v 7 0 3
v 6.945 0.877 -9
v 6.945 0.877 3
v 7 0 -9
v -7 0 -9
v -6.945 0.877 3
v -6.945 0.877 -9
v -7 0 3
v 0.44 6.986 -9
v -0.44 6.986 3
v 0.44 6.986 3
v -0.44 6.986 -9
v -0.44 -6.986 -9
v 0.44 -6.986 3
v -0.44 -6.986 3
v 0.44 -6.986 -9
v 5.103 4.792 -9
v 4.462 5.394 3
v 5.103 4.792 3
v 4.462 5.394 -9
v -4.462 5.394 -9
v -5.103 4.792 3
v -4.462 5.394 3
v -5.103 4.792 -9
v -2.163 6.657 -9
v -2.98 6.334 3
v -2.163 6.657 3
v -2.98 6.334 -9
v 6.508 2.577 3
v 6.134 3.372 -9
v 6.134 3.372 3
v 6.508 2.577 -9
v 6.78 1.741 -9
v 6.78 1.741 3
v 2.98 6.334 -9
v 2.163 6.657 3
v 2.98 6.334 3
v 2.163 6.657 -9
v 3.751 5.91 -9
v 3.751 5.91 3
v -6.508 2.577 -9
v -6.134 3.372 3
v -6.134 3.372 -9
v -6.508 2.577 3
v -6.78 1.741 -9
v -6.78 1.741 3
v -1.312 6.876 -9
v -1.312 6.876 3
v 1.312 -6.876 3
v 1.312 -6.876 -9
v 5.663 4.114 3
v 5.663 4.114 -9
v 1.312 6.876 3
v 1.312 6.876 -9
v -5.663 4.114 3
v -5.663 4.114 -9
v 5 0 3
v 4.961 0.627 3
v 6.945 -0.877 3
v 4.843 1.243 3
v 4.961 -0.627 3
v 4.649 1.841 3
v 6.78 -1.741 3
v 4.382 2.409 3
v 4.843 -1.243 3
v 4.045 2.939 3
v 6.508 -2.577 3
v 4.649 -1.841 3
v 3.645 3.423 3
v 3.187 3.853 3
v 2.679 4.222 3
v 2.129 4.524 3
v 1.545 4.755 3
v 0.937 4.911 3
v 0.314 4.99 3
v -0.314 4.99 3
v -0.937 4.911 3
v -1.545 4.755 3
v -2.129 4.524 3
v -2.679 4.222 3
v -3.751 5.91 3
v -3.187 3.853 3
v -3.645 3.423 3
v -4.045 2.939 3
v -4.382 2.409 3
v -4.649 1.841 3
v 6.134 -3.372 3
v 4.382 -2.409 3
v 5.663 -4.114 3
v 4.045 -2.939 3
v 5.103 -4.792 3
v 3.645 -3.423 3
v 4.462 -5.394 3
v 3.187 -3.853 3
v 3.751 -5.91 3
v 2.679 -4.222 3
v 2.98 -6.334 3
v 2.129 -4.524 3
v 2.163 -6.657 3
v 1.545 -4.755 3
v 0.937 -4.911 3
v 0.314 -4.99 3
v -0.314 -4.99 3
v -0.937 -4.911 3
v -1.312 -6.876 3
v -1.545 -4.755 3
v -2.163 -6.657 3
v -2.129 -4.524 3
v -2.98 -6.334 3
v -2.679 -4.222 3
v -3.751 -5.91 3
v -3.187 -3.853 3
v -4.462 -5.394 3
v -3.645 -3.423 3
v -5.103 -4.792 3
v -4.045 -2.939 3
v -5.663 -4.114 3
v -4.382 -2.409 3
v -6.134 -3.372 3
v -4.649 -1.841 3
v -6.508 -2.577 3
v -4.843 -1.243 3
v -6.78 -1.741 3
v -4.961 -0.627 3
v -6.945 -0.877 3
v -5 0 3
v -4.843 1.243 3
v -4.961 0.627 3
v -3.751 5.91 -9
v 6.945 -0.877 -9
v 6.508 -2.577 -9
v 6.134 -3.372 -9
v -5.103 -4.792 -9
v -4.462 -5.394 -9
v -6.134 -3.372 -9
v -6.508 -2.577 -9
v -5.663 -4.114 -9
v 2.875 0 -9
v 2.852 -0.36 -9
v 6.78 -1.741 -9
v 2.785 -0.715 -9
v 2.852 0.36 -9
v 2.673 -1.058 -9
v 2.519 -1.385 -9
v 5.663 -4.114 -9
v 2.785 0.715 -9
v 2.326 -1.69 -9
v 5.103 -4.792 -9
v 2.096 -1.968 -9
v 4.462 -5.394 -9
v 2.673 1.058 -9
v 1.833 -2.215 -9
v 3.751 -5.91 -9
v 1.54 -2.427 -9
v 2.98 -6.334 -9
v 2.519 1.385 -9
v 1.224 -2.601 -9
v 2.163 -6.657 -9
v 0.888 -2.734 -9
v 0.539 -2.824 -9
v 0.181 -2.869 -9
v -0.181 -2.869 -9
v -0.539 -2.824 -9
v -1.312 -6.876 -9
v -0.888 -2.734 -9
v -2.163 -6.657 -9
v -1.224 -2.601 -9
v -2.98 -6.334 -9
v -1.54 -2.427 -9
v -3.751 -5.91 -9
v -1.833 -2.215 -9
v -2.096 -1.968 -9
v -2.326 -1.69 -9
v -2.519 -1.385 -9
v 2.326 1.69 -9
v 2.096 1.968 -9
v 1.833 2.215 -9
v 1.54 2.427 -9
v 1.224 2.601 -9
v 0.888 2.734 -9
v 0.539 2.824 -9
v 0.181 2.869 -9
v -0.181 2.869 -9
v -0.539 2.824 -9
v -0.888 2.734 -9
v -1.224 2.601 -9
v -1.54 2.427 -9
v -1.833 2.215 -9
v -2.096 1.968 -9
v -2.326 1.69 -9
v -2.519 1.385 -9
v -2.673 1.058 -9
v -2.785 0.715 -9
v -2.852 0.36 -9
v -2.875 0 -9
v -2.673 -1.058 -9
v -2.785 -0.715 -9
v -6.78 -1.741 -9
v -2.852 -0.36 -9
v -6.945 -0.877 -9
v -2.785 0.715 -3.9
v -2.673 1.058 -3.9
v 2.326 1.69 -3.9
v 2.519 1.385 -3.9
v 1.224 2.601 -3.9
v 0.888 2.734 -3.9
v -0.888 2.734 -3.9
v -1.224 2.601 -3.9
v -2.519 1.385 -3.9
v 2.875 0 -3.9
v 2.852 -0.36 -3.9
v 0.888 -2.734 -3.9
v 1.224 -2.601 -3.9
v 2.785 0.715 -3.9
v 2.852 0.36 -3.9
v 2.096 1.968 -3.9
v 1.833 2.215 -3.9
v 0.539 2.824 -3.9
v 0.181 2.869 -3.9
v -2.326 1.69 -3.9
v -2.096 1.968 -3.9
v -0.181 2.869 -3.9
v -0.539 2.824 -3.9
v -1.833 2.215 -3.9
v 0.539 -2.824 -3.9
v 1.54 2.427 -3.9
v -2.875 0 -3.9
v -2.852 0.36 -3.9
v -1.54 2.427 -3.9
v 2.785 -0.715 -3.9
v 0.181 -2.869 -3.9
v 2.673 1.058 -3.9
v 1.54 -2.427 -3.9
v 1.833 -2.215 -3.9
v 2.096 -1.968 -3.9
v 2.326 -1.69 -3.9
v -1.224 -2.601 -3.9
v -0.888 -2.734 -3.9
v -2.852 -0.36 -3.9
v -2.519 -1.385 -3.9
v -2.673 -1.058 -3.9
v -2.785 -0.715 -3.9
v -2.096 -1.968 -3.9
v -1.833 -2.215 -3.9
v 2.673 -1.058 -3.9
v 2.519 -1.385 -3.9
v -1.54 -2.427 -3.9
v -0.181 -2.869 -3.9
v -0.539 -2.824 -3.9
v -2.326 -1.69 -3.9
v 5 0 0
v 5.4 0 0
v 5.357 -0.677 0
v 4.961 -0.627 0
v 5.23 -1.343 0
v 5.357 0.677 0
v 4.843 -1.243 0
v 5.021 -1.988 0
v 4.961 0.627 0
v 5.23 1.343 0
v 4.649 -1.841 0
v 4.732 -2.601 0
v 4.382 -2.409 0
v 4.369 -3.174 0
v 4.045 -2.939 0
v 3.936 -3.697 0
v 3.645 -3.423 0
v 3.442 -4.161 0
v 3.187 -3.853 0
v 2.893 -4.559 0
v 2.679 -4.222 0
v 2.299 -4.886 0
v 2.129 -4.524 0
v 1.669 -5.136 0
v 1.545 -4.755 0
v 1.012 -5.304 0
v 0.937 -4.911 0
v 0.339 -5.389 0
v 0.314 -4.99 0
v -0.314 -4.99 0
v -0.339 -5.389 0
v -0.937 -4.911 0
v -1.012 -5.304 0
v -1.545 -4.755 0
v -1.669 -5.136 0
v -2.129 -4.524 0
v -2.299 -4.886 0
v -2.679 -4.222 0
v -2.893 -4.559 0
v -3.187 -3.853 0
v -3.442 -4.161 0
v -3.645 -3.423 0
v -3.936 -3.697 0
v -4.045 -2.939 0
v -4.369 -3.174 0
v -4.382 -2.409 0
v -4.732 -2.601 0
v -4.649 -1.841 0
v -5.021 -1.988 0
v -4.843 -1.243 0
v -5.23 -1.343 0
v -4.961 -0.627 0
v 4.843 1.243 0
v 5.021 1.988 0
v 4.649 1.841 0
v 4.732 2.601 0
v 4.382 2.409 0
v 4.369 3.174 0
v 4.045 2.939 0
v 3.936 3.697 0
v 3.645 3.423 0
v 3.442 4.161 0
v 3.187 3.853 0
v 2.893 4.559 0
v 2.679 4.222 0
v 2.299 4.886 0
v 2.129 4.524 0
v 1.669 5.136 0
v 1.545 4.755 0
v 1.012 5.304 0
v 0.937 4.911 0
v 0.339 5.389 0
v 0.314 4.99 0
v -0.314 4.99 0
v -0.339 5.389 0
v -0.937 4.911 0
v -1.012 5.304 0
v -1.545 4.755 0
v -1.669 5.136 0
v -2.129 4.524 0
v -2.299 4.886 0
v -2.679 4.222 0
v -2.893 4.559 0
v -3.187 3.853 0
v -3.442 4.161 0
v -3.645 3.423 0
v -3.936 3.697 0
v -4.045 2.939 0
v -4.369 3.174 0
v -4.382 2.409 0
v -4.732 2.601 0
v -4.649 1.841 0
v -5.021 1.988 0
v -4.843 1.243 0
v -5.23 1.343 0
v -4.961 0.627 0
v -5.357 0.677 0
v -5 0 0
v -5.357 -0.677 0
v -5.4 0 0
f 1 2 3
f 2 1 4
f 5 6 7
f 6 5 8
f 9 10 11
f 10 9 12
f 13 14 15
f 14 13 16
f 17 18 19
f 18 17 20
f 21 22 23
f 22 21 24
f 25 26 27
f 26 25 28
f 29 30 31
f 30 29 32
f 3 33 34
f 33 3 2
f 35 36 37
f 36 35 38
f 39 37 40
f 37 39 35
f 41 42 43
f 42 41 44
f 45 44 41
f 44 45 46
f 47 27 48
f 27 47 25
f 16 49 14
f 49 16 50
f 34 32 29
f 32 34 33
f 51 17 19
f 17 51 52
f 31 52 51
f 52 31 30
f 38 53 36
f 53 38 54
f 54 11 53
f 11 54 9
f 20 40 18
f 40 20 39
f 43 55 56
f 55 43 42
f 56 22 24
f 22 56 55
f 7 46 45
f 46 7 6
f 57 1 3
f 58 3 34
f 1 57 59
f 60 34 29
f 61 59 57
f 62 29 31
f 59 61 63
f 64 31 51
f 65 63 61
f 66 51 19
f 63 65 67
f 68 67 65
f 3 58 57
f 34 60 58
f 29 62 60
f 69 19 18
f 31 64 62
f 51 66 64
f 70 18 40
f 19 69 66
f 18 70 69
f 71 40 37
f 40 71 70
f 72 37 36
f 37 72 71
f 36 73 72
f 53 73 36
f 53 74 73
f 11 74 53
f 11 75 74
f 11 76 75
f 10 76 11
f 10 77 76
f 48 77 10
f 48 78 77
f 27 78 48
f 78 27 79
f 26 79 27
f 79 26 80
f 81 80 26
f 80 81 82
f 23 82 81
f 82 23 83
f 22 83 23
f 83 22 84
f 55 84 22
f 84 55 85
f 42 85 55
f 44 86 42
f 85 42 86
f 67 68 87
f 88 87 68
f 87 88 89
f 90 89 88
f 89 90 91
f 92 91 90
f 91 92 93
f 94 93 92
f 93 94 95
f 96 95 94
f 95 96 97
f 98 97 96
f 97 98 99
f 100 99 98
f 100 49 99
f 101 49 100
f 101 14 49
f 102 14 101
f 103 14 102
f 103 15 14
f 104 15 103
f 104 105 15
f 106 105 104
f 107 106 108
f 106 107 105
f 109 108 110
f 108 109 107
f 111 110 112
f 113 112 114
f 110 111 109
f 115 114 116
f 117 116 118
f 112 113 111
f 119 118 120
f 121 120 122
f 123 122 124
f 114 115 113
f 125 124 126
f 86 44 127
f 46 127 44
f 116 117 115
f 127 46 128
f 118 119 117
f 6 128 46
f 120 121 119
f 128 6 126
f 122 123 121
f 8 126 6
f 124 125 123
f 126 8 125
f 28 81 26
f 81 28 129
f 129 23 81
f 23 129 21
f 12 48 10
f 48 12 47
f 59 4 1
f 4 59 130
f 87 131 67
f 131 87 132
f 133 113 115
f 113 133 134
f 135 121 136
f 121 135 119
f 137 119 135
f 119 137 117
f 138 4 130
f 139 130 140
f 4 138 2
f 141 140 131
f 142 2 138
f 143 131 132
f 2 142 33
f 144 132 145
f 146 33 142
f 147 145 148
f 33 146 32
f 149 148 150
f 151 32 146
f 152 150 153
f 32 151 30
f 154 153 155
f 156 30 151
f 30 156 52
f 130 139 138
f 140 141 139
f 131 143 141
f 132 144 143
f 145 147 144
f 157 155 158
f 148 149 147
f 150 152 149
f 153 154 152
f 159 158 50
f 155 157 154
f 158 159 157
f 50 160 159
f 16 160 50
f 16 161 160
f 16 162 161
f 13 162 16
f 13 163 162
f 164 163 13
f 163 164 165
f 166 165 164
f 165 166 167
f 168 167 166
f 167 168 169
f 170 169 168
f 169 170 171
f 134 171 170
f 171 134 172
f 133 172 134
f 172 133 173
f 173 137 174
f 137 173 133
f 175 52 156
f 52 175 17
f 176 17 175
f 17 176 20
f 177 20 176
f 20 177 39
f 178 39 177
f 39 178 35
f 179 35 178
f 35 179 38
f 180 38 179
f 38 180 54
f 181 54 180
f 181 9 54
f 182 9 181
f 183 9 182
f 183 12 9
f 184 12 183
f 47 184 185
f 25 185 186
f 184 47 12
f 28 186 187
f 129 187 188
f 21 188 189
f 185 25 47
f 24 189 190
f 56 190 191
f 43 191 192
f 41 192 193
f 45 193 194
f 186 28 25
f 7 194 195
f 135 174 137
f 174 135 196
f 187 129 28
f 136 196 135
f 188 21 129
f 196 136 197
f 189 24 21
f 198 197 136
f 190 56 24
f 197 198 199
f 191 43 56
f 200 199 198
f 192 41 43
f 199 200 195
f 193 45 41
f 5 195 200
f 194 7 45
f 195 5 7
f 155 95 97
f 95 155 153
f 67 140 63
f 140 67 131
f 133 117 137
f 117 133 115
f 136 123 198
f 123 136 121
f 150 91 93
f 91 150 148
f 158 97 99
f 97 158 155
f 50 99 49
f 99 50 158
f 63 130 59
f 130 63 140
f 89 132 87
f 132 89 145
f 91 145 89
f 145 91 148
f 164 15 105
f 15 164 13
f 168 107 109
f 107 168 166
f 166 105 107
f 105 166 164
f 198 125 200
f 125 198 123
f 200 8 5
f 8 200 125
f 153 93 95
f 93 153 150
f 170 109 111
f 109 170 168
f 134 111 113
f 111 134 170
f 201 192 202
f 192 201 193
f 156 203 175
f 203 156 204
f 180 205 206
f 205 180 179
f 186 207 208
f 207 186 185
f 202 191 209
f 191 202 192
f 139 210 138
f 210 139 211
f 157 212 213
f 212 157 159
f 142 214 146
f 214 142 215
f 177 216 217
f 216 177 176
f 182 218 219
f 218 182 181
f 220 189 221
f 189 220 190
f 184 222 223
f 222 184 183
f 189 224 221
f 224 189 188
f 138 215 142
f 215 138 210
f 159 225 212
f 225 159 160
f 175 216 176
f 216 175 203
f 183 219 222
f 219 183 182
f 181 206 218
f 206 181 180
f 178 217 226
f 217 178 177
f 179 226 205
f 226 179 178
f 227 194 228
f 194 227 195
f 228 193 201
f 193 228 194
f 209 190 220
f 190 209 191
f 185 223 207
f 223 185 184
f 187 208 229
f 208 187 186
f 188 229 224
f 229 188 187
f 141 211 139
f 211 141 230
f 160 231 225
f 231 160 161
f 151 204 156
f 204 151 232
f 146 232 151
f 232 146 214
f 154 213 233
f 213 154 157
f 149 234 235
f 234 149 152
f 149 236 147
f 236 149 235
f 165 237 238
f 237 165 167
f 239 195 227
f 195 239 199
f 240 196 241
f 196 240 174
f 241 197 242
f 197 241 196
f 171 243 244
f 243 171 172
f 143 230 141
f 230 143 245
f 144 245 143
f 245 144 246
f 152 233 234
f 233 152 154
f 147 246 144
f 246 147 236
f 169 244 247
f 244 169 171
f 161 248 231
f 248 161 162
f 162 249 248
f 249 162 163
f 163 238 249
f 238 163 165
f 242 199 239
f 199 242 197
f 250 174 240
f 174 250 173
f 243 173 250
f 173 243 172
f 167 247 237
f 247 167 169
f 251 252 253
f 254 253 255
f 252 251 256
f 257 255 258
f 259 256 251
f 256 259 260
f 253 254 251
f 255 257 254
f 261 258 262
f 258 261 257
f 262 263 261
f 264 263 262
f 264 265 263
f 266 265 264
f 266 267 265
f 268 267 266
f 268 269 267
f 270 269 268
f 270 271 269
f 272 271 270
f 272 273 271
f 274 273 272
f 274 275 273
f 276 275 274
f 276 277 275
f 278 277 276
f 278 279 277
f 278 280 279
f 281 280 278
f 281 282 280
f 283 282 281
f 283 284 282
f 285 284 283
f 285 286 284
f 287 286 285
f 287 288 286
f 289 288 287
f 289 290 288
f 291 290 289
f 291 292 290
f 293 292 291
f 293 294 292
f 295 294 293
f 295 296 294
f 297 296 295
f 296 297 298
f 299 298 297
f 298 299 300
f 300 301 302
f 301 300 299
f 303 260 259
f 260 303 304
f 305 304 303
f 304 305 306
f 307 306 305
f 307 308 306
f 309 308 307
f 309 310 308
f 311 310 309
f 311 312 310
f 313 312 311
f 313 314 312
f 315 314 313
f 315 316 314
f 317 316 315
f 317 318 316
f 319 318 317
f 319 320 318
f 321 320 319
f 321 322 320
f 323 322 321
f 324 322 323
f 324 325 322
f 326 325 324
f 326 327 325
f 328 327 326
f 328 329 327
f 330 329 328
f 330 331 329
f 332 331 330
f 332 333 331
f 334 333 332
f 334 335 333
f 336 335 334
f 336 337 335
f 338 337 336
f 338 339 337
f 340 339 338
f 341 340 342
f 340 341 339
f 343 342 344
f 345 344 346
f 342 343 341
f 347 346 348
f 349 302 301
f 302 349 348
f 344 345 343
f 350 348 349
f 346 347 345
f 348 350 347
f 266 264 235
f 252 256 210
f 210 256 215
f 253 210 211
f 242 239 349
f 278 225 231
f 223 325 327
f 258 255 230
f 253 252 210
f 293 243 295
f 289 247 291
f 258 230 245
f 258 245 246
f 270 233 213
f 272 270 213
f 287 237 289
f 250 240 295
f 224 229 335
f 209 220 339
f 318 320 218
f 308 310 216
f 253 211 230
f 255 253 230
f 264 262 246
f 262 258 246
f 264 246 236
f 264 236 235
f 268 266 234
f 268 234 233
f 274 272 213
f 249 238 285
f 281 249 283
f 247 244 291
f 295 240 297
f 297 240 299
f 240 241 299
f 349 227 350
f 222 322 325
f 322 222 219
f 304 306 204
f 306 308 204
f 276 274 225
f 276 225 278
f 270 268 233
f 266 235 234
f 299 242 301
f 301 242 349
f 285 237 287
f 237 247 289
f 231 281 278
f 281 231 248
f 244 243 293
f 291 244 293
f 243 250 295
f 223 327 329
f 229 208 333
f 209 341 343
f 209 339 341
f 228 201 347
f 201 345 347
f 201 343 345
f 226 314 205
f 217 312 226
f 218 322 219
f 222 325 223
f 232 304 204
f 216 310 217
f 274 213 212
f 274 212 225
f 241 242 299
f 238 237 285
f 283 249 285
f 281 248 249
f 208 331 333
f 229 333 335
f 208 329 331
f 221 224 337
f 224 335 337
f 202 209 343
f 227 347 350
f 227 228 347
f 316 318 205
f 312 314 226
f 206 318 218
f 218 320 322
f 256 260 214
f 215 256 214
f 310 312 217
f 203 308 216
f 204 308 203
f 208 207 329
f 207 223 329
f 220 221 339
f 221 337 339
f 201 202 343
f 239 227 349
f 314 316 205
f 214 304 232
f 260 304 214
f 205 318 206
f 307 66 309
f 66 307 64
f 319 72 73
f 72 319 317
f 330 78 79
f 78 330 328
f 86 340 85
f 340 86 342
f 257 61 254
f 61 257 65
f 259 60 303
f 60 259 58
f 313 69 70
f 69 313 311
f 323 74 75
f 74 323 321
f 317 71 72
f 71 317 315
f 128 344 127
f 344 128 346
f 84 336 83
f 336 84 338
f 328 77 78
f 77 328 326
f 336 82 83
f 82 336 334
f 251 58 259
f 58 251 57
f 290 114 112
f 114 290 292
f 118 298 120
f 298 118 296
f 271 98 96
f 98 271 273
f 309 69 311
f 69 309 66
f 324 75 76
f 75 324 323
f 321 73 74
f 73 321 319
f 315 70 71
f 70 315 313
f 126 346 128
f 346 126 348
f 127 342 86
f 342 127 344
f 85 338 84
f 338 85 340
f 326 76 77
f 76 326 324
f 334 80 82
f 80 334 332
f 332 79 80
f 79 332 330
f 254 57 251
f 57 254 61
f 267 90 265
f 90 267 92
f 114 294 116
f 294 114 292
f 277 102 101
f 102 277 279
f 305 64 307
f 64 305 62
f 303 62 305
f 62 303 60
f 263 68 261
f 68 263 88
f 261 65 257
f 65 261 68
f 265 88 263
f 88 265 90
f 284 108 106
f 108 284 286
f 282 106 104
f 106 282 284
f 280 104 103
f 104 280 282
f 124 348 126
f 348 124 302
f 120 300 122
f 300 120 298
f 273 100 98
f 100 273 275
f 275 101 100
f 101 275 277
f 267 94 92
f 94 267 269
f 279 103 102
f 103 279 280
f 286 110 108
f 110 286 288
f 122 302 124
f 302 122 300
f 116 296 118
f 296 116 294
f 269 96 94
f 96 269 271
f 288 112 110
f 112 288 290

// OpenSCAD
$fn = 50;


difference() {
	union() {
		translate(v = [0, 0, -9.0000000000]) {
			cylinder(h = 12, r = 7.0000000000);
		}
		#translate(v = [0, 0, -12.0000000000]) {
			cylinder(h = 12, r = 2.8750000000);
		}
	}
	union() {
		translate(v = [0, 0, 0]) {
			rotate(a = [0, 0, 0]) {
				difference() {
					union() {
						translate(v = [0, 0, -12.0000000000]) {
							cylinder(h = 12, r = 2.6000000000);
						}
						translate(v = [0, 0, -3.9000000000]) {
							cylinder(h = 3.9000000000, r1 = 2.8750000000, r2 = 5.4000000000);
						}
						translate(v = [0, 0, -12.0000000000]) {
							cylinder(h = 12, r = 2.8750000000);
						}
						translate(v = [0, 0, -12.0000000000]) {
							cylinder(h = 12, r = 2.6000000000);
						}
					}
					union();
				}
			}
		}
		#cylinder(h = 3, r = 5.0000000000);
	}
}
